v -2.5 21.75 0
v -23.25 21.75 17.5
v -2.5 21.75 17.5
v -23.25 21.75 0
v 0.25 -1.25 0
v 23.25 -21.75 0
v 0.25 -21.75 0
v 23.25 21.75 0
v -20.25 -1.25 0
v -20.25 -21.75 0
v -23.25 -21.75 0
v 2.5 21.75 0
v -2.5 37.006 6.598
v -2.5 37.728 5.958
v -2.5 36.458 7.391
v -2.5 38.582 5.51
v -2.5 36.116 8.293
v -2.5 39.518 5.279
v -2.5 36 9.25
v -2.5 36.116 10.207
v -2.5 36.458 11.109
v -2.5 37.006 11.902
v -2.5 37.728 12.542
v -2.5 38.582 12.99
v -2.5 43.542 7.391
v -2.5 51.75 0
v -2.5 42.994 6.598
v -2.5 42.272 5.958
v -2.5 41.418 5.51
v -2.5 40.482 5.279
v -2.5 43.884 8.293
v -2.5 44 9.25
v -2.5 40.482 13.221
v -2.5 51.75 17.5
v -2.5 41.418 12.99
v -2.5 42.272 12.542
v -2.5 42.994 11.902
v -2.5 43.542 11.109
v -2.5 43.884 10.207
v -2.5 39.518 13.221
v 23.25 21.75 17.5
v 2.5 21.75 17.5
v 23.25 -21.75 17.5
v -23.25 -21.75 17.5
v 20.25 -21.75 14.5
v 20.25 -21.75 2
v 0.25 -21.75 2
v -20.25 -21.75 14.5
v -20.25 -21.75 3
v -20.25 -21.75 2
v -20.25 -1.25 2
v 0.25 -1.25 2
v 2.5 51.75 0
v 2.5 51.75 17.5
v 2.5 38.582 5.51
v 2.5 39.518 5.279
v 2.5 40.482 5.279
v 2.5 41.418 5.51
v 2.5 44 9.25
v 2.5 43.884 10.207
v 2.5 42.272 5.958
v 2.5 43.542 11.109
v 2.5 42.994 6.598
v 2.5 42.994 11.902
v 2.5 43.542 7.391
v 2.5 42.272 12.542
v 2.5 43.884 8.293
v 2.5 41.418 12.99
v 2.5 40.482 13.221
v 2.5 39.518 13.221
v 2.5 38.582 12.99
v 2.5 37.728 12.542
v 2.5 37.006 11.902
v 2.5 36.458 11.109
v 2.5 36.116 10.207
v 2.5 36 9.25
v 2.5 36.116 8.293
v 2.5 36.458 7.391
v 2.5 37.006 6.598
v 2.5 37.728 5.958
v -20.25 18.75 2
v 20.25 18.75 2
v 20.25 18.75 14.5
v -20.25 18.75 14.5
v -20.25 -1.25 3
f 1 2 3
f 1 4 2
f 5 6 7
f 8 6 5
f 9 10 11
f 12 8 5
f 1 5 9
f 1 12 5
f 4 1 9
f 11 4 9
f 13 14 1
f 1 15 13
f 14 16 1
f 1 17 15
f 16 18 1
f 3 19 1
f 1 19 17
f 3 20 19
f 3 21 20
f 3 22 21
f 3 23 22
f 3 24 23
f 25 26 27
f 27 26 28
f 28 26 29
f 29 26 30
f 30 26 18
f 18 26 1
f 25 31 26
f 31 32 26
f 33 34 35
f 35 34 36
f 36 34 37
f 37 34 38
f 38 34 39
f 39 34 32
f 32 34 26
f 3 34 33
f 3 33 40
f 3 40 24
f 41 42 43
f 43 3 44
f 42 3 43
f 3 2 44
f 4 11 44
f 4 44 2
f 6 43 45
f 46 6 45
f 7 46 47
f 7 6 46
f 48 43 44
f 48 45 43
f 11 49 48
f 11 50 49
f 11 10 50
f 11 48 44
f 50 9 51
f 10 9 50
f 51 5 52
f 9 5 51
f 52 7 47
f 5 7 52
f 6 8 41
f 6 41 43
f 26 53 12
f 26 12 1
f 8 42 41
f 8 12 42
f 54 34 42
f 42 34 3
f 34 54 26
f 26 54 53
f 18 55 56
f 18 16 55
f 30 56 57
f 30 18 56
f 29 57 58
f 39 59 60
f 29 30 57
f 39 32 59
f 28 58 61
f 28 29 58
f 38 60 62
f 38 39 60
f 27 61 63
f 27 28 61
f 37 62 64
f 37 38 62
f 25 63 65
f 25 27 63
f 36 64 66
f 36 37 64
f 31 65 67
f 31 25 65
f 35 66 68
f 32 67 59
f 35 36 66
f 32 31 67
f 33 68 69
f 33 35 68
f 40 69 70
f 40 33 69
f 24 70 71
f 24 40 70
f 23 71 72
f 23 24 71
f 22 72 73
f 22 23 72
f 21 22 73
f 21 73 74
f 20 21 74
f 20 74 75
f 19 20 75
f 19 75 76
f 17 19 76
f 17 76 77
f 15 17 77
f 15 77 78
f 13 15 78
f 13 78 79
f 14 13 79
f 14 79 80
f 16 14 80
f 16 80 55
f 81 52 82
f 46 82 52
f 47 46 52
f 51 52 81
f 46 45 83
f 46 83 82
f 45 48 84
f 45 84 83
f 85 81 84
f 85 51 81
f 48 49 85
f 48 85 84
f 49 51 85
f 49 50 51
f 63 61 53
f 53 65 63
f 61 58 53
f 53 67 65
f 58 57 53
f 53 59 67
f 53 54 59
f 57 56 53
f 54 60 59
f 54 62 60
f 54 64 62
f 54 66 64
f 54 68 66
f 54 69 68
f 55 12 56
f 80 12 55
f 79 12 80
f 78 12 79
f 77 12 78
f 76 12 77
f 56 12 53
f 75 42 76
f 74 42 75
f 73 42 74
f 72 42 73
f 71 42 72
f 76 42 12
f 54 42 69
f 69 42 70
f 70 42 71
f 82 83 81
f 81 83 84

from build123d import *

# Parameters (mm, degrees)
SKETCH_W        = 46.5
SKETCH_H        = 43.5
PAD_DEPTH       = 17.5
SKETCH001_W     = 40.5
SKETCH001_H     = 12.5
POCKET_DEPTH    = 40.5
SKETCH002_W     = 20.5
SKETCH002_H     = 20.5
POCKET001_DEPTH = 3
SKETCH003_W     = 5
SKETCH003_H     = 30
PAD001_DEPTH    = 17.5
SKETCH004_R     = 4
POCKET002_DEPTH = 5
POCKET003_DEPTH = 100


with BuildPart() as part:
    # Sketch → Pad (new body)
    with BuildSketch(Plane.XY):
        Rectangle(SKETCH_W, SKETCH_H)
    extrude(amount=PAD_DEPTH)

    # Sketch001 (on Face3 of Pad) → Pocket (cut)
    with BuildSketch(Plane.XZ.offset(21.75)):
        with Locations((0, 8.25)):
            Rectangle(SKETCH001_W, SKETCH001_H)
    extrude(amount=-POCKET_DEPTH, mode=Mode.SUBTRACT)

    # Sketch002 (on Face4 of Pocket) → Pocket001 (cut)
    with BuildSketch(Plane(origin=(0, 0, 0), x_dir=(1, 0, 0), z_dir=(0, 0, -1))):
        with Locations((-10, 11.5)):
            Rectangle(SKETCH002_W, SKETCH002_H)
    extrude(amount=-POCKET001_DEPTH, mode=Mode.SUBTRACT)

    # Sketch003 (on Face5 of Pocket001) → Pad001 (join)
    with BuildSketch(Plane.XY.offset(17.5)):
        with Locations((0, 36.75)):
            Rectangle(SKETCH003_W, SKETCH003_H)
    extrude(amount=-PAD001_DEPTH)

    # Sketch004 (on Face19 of Pad001) → Pocket002 (cut)
    with BuildSketch(Plane.YZ.offset(-20.25)):
        with Locations((40, 9.25)):
            Circle(SKETCH004_R)
    extrude(amount=-POCKET002_DEPTH, mode=Mode.SUBTRACT)

    # Sketch004 (on Face19 of Pad001) → Pocket003 (cut)
    with BuildSketch(Plane.YZ.offset(-20.25)):
        with Locations((40, 9.25)):
            Circle(SKETCH004_R)
    extrude(amount=POCKET003_DEPTH, mode=Mode.SUBTRACT)


solid = part.part
